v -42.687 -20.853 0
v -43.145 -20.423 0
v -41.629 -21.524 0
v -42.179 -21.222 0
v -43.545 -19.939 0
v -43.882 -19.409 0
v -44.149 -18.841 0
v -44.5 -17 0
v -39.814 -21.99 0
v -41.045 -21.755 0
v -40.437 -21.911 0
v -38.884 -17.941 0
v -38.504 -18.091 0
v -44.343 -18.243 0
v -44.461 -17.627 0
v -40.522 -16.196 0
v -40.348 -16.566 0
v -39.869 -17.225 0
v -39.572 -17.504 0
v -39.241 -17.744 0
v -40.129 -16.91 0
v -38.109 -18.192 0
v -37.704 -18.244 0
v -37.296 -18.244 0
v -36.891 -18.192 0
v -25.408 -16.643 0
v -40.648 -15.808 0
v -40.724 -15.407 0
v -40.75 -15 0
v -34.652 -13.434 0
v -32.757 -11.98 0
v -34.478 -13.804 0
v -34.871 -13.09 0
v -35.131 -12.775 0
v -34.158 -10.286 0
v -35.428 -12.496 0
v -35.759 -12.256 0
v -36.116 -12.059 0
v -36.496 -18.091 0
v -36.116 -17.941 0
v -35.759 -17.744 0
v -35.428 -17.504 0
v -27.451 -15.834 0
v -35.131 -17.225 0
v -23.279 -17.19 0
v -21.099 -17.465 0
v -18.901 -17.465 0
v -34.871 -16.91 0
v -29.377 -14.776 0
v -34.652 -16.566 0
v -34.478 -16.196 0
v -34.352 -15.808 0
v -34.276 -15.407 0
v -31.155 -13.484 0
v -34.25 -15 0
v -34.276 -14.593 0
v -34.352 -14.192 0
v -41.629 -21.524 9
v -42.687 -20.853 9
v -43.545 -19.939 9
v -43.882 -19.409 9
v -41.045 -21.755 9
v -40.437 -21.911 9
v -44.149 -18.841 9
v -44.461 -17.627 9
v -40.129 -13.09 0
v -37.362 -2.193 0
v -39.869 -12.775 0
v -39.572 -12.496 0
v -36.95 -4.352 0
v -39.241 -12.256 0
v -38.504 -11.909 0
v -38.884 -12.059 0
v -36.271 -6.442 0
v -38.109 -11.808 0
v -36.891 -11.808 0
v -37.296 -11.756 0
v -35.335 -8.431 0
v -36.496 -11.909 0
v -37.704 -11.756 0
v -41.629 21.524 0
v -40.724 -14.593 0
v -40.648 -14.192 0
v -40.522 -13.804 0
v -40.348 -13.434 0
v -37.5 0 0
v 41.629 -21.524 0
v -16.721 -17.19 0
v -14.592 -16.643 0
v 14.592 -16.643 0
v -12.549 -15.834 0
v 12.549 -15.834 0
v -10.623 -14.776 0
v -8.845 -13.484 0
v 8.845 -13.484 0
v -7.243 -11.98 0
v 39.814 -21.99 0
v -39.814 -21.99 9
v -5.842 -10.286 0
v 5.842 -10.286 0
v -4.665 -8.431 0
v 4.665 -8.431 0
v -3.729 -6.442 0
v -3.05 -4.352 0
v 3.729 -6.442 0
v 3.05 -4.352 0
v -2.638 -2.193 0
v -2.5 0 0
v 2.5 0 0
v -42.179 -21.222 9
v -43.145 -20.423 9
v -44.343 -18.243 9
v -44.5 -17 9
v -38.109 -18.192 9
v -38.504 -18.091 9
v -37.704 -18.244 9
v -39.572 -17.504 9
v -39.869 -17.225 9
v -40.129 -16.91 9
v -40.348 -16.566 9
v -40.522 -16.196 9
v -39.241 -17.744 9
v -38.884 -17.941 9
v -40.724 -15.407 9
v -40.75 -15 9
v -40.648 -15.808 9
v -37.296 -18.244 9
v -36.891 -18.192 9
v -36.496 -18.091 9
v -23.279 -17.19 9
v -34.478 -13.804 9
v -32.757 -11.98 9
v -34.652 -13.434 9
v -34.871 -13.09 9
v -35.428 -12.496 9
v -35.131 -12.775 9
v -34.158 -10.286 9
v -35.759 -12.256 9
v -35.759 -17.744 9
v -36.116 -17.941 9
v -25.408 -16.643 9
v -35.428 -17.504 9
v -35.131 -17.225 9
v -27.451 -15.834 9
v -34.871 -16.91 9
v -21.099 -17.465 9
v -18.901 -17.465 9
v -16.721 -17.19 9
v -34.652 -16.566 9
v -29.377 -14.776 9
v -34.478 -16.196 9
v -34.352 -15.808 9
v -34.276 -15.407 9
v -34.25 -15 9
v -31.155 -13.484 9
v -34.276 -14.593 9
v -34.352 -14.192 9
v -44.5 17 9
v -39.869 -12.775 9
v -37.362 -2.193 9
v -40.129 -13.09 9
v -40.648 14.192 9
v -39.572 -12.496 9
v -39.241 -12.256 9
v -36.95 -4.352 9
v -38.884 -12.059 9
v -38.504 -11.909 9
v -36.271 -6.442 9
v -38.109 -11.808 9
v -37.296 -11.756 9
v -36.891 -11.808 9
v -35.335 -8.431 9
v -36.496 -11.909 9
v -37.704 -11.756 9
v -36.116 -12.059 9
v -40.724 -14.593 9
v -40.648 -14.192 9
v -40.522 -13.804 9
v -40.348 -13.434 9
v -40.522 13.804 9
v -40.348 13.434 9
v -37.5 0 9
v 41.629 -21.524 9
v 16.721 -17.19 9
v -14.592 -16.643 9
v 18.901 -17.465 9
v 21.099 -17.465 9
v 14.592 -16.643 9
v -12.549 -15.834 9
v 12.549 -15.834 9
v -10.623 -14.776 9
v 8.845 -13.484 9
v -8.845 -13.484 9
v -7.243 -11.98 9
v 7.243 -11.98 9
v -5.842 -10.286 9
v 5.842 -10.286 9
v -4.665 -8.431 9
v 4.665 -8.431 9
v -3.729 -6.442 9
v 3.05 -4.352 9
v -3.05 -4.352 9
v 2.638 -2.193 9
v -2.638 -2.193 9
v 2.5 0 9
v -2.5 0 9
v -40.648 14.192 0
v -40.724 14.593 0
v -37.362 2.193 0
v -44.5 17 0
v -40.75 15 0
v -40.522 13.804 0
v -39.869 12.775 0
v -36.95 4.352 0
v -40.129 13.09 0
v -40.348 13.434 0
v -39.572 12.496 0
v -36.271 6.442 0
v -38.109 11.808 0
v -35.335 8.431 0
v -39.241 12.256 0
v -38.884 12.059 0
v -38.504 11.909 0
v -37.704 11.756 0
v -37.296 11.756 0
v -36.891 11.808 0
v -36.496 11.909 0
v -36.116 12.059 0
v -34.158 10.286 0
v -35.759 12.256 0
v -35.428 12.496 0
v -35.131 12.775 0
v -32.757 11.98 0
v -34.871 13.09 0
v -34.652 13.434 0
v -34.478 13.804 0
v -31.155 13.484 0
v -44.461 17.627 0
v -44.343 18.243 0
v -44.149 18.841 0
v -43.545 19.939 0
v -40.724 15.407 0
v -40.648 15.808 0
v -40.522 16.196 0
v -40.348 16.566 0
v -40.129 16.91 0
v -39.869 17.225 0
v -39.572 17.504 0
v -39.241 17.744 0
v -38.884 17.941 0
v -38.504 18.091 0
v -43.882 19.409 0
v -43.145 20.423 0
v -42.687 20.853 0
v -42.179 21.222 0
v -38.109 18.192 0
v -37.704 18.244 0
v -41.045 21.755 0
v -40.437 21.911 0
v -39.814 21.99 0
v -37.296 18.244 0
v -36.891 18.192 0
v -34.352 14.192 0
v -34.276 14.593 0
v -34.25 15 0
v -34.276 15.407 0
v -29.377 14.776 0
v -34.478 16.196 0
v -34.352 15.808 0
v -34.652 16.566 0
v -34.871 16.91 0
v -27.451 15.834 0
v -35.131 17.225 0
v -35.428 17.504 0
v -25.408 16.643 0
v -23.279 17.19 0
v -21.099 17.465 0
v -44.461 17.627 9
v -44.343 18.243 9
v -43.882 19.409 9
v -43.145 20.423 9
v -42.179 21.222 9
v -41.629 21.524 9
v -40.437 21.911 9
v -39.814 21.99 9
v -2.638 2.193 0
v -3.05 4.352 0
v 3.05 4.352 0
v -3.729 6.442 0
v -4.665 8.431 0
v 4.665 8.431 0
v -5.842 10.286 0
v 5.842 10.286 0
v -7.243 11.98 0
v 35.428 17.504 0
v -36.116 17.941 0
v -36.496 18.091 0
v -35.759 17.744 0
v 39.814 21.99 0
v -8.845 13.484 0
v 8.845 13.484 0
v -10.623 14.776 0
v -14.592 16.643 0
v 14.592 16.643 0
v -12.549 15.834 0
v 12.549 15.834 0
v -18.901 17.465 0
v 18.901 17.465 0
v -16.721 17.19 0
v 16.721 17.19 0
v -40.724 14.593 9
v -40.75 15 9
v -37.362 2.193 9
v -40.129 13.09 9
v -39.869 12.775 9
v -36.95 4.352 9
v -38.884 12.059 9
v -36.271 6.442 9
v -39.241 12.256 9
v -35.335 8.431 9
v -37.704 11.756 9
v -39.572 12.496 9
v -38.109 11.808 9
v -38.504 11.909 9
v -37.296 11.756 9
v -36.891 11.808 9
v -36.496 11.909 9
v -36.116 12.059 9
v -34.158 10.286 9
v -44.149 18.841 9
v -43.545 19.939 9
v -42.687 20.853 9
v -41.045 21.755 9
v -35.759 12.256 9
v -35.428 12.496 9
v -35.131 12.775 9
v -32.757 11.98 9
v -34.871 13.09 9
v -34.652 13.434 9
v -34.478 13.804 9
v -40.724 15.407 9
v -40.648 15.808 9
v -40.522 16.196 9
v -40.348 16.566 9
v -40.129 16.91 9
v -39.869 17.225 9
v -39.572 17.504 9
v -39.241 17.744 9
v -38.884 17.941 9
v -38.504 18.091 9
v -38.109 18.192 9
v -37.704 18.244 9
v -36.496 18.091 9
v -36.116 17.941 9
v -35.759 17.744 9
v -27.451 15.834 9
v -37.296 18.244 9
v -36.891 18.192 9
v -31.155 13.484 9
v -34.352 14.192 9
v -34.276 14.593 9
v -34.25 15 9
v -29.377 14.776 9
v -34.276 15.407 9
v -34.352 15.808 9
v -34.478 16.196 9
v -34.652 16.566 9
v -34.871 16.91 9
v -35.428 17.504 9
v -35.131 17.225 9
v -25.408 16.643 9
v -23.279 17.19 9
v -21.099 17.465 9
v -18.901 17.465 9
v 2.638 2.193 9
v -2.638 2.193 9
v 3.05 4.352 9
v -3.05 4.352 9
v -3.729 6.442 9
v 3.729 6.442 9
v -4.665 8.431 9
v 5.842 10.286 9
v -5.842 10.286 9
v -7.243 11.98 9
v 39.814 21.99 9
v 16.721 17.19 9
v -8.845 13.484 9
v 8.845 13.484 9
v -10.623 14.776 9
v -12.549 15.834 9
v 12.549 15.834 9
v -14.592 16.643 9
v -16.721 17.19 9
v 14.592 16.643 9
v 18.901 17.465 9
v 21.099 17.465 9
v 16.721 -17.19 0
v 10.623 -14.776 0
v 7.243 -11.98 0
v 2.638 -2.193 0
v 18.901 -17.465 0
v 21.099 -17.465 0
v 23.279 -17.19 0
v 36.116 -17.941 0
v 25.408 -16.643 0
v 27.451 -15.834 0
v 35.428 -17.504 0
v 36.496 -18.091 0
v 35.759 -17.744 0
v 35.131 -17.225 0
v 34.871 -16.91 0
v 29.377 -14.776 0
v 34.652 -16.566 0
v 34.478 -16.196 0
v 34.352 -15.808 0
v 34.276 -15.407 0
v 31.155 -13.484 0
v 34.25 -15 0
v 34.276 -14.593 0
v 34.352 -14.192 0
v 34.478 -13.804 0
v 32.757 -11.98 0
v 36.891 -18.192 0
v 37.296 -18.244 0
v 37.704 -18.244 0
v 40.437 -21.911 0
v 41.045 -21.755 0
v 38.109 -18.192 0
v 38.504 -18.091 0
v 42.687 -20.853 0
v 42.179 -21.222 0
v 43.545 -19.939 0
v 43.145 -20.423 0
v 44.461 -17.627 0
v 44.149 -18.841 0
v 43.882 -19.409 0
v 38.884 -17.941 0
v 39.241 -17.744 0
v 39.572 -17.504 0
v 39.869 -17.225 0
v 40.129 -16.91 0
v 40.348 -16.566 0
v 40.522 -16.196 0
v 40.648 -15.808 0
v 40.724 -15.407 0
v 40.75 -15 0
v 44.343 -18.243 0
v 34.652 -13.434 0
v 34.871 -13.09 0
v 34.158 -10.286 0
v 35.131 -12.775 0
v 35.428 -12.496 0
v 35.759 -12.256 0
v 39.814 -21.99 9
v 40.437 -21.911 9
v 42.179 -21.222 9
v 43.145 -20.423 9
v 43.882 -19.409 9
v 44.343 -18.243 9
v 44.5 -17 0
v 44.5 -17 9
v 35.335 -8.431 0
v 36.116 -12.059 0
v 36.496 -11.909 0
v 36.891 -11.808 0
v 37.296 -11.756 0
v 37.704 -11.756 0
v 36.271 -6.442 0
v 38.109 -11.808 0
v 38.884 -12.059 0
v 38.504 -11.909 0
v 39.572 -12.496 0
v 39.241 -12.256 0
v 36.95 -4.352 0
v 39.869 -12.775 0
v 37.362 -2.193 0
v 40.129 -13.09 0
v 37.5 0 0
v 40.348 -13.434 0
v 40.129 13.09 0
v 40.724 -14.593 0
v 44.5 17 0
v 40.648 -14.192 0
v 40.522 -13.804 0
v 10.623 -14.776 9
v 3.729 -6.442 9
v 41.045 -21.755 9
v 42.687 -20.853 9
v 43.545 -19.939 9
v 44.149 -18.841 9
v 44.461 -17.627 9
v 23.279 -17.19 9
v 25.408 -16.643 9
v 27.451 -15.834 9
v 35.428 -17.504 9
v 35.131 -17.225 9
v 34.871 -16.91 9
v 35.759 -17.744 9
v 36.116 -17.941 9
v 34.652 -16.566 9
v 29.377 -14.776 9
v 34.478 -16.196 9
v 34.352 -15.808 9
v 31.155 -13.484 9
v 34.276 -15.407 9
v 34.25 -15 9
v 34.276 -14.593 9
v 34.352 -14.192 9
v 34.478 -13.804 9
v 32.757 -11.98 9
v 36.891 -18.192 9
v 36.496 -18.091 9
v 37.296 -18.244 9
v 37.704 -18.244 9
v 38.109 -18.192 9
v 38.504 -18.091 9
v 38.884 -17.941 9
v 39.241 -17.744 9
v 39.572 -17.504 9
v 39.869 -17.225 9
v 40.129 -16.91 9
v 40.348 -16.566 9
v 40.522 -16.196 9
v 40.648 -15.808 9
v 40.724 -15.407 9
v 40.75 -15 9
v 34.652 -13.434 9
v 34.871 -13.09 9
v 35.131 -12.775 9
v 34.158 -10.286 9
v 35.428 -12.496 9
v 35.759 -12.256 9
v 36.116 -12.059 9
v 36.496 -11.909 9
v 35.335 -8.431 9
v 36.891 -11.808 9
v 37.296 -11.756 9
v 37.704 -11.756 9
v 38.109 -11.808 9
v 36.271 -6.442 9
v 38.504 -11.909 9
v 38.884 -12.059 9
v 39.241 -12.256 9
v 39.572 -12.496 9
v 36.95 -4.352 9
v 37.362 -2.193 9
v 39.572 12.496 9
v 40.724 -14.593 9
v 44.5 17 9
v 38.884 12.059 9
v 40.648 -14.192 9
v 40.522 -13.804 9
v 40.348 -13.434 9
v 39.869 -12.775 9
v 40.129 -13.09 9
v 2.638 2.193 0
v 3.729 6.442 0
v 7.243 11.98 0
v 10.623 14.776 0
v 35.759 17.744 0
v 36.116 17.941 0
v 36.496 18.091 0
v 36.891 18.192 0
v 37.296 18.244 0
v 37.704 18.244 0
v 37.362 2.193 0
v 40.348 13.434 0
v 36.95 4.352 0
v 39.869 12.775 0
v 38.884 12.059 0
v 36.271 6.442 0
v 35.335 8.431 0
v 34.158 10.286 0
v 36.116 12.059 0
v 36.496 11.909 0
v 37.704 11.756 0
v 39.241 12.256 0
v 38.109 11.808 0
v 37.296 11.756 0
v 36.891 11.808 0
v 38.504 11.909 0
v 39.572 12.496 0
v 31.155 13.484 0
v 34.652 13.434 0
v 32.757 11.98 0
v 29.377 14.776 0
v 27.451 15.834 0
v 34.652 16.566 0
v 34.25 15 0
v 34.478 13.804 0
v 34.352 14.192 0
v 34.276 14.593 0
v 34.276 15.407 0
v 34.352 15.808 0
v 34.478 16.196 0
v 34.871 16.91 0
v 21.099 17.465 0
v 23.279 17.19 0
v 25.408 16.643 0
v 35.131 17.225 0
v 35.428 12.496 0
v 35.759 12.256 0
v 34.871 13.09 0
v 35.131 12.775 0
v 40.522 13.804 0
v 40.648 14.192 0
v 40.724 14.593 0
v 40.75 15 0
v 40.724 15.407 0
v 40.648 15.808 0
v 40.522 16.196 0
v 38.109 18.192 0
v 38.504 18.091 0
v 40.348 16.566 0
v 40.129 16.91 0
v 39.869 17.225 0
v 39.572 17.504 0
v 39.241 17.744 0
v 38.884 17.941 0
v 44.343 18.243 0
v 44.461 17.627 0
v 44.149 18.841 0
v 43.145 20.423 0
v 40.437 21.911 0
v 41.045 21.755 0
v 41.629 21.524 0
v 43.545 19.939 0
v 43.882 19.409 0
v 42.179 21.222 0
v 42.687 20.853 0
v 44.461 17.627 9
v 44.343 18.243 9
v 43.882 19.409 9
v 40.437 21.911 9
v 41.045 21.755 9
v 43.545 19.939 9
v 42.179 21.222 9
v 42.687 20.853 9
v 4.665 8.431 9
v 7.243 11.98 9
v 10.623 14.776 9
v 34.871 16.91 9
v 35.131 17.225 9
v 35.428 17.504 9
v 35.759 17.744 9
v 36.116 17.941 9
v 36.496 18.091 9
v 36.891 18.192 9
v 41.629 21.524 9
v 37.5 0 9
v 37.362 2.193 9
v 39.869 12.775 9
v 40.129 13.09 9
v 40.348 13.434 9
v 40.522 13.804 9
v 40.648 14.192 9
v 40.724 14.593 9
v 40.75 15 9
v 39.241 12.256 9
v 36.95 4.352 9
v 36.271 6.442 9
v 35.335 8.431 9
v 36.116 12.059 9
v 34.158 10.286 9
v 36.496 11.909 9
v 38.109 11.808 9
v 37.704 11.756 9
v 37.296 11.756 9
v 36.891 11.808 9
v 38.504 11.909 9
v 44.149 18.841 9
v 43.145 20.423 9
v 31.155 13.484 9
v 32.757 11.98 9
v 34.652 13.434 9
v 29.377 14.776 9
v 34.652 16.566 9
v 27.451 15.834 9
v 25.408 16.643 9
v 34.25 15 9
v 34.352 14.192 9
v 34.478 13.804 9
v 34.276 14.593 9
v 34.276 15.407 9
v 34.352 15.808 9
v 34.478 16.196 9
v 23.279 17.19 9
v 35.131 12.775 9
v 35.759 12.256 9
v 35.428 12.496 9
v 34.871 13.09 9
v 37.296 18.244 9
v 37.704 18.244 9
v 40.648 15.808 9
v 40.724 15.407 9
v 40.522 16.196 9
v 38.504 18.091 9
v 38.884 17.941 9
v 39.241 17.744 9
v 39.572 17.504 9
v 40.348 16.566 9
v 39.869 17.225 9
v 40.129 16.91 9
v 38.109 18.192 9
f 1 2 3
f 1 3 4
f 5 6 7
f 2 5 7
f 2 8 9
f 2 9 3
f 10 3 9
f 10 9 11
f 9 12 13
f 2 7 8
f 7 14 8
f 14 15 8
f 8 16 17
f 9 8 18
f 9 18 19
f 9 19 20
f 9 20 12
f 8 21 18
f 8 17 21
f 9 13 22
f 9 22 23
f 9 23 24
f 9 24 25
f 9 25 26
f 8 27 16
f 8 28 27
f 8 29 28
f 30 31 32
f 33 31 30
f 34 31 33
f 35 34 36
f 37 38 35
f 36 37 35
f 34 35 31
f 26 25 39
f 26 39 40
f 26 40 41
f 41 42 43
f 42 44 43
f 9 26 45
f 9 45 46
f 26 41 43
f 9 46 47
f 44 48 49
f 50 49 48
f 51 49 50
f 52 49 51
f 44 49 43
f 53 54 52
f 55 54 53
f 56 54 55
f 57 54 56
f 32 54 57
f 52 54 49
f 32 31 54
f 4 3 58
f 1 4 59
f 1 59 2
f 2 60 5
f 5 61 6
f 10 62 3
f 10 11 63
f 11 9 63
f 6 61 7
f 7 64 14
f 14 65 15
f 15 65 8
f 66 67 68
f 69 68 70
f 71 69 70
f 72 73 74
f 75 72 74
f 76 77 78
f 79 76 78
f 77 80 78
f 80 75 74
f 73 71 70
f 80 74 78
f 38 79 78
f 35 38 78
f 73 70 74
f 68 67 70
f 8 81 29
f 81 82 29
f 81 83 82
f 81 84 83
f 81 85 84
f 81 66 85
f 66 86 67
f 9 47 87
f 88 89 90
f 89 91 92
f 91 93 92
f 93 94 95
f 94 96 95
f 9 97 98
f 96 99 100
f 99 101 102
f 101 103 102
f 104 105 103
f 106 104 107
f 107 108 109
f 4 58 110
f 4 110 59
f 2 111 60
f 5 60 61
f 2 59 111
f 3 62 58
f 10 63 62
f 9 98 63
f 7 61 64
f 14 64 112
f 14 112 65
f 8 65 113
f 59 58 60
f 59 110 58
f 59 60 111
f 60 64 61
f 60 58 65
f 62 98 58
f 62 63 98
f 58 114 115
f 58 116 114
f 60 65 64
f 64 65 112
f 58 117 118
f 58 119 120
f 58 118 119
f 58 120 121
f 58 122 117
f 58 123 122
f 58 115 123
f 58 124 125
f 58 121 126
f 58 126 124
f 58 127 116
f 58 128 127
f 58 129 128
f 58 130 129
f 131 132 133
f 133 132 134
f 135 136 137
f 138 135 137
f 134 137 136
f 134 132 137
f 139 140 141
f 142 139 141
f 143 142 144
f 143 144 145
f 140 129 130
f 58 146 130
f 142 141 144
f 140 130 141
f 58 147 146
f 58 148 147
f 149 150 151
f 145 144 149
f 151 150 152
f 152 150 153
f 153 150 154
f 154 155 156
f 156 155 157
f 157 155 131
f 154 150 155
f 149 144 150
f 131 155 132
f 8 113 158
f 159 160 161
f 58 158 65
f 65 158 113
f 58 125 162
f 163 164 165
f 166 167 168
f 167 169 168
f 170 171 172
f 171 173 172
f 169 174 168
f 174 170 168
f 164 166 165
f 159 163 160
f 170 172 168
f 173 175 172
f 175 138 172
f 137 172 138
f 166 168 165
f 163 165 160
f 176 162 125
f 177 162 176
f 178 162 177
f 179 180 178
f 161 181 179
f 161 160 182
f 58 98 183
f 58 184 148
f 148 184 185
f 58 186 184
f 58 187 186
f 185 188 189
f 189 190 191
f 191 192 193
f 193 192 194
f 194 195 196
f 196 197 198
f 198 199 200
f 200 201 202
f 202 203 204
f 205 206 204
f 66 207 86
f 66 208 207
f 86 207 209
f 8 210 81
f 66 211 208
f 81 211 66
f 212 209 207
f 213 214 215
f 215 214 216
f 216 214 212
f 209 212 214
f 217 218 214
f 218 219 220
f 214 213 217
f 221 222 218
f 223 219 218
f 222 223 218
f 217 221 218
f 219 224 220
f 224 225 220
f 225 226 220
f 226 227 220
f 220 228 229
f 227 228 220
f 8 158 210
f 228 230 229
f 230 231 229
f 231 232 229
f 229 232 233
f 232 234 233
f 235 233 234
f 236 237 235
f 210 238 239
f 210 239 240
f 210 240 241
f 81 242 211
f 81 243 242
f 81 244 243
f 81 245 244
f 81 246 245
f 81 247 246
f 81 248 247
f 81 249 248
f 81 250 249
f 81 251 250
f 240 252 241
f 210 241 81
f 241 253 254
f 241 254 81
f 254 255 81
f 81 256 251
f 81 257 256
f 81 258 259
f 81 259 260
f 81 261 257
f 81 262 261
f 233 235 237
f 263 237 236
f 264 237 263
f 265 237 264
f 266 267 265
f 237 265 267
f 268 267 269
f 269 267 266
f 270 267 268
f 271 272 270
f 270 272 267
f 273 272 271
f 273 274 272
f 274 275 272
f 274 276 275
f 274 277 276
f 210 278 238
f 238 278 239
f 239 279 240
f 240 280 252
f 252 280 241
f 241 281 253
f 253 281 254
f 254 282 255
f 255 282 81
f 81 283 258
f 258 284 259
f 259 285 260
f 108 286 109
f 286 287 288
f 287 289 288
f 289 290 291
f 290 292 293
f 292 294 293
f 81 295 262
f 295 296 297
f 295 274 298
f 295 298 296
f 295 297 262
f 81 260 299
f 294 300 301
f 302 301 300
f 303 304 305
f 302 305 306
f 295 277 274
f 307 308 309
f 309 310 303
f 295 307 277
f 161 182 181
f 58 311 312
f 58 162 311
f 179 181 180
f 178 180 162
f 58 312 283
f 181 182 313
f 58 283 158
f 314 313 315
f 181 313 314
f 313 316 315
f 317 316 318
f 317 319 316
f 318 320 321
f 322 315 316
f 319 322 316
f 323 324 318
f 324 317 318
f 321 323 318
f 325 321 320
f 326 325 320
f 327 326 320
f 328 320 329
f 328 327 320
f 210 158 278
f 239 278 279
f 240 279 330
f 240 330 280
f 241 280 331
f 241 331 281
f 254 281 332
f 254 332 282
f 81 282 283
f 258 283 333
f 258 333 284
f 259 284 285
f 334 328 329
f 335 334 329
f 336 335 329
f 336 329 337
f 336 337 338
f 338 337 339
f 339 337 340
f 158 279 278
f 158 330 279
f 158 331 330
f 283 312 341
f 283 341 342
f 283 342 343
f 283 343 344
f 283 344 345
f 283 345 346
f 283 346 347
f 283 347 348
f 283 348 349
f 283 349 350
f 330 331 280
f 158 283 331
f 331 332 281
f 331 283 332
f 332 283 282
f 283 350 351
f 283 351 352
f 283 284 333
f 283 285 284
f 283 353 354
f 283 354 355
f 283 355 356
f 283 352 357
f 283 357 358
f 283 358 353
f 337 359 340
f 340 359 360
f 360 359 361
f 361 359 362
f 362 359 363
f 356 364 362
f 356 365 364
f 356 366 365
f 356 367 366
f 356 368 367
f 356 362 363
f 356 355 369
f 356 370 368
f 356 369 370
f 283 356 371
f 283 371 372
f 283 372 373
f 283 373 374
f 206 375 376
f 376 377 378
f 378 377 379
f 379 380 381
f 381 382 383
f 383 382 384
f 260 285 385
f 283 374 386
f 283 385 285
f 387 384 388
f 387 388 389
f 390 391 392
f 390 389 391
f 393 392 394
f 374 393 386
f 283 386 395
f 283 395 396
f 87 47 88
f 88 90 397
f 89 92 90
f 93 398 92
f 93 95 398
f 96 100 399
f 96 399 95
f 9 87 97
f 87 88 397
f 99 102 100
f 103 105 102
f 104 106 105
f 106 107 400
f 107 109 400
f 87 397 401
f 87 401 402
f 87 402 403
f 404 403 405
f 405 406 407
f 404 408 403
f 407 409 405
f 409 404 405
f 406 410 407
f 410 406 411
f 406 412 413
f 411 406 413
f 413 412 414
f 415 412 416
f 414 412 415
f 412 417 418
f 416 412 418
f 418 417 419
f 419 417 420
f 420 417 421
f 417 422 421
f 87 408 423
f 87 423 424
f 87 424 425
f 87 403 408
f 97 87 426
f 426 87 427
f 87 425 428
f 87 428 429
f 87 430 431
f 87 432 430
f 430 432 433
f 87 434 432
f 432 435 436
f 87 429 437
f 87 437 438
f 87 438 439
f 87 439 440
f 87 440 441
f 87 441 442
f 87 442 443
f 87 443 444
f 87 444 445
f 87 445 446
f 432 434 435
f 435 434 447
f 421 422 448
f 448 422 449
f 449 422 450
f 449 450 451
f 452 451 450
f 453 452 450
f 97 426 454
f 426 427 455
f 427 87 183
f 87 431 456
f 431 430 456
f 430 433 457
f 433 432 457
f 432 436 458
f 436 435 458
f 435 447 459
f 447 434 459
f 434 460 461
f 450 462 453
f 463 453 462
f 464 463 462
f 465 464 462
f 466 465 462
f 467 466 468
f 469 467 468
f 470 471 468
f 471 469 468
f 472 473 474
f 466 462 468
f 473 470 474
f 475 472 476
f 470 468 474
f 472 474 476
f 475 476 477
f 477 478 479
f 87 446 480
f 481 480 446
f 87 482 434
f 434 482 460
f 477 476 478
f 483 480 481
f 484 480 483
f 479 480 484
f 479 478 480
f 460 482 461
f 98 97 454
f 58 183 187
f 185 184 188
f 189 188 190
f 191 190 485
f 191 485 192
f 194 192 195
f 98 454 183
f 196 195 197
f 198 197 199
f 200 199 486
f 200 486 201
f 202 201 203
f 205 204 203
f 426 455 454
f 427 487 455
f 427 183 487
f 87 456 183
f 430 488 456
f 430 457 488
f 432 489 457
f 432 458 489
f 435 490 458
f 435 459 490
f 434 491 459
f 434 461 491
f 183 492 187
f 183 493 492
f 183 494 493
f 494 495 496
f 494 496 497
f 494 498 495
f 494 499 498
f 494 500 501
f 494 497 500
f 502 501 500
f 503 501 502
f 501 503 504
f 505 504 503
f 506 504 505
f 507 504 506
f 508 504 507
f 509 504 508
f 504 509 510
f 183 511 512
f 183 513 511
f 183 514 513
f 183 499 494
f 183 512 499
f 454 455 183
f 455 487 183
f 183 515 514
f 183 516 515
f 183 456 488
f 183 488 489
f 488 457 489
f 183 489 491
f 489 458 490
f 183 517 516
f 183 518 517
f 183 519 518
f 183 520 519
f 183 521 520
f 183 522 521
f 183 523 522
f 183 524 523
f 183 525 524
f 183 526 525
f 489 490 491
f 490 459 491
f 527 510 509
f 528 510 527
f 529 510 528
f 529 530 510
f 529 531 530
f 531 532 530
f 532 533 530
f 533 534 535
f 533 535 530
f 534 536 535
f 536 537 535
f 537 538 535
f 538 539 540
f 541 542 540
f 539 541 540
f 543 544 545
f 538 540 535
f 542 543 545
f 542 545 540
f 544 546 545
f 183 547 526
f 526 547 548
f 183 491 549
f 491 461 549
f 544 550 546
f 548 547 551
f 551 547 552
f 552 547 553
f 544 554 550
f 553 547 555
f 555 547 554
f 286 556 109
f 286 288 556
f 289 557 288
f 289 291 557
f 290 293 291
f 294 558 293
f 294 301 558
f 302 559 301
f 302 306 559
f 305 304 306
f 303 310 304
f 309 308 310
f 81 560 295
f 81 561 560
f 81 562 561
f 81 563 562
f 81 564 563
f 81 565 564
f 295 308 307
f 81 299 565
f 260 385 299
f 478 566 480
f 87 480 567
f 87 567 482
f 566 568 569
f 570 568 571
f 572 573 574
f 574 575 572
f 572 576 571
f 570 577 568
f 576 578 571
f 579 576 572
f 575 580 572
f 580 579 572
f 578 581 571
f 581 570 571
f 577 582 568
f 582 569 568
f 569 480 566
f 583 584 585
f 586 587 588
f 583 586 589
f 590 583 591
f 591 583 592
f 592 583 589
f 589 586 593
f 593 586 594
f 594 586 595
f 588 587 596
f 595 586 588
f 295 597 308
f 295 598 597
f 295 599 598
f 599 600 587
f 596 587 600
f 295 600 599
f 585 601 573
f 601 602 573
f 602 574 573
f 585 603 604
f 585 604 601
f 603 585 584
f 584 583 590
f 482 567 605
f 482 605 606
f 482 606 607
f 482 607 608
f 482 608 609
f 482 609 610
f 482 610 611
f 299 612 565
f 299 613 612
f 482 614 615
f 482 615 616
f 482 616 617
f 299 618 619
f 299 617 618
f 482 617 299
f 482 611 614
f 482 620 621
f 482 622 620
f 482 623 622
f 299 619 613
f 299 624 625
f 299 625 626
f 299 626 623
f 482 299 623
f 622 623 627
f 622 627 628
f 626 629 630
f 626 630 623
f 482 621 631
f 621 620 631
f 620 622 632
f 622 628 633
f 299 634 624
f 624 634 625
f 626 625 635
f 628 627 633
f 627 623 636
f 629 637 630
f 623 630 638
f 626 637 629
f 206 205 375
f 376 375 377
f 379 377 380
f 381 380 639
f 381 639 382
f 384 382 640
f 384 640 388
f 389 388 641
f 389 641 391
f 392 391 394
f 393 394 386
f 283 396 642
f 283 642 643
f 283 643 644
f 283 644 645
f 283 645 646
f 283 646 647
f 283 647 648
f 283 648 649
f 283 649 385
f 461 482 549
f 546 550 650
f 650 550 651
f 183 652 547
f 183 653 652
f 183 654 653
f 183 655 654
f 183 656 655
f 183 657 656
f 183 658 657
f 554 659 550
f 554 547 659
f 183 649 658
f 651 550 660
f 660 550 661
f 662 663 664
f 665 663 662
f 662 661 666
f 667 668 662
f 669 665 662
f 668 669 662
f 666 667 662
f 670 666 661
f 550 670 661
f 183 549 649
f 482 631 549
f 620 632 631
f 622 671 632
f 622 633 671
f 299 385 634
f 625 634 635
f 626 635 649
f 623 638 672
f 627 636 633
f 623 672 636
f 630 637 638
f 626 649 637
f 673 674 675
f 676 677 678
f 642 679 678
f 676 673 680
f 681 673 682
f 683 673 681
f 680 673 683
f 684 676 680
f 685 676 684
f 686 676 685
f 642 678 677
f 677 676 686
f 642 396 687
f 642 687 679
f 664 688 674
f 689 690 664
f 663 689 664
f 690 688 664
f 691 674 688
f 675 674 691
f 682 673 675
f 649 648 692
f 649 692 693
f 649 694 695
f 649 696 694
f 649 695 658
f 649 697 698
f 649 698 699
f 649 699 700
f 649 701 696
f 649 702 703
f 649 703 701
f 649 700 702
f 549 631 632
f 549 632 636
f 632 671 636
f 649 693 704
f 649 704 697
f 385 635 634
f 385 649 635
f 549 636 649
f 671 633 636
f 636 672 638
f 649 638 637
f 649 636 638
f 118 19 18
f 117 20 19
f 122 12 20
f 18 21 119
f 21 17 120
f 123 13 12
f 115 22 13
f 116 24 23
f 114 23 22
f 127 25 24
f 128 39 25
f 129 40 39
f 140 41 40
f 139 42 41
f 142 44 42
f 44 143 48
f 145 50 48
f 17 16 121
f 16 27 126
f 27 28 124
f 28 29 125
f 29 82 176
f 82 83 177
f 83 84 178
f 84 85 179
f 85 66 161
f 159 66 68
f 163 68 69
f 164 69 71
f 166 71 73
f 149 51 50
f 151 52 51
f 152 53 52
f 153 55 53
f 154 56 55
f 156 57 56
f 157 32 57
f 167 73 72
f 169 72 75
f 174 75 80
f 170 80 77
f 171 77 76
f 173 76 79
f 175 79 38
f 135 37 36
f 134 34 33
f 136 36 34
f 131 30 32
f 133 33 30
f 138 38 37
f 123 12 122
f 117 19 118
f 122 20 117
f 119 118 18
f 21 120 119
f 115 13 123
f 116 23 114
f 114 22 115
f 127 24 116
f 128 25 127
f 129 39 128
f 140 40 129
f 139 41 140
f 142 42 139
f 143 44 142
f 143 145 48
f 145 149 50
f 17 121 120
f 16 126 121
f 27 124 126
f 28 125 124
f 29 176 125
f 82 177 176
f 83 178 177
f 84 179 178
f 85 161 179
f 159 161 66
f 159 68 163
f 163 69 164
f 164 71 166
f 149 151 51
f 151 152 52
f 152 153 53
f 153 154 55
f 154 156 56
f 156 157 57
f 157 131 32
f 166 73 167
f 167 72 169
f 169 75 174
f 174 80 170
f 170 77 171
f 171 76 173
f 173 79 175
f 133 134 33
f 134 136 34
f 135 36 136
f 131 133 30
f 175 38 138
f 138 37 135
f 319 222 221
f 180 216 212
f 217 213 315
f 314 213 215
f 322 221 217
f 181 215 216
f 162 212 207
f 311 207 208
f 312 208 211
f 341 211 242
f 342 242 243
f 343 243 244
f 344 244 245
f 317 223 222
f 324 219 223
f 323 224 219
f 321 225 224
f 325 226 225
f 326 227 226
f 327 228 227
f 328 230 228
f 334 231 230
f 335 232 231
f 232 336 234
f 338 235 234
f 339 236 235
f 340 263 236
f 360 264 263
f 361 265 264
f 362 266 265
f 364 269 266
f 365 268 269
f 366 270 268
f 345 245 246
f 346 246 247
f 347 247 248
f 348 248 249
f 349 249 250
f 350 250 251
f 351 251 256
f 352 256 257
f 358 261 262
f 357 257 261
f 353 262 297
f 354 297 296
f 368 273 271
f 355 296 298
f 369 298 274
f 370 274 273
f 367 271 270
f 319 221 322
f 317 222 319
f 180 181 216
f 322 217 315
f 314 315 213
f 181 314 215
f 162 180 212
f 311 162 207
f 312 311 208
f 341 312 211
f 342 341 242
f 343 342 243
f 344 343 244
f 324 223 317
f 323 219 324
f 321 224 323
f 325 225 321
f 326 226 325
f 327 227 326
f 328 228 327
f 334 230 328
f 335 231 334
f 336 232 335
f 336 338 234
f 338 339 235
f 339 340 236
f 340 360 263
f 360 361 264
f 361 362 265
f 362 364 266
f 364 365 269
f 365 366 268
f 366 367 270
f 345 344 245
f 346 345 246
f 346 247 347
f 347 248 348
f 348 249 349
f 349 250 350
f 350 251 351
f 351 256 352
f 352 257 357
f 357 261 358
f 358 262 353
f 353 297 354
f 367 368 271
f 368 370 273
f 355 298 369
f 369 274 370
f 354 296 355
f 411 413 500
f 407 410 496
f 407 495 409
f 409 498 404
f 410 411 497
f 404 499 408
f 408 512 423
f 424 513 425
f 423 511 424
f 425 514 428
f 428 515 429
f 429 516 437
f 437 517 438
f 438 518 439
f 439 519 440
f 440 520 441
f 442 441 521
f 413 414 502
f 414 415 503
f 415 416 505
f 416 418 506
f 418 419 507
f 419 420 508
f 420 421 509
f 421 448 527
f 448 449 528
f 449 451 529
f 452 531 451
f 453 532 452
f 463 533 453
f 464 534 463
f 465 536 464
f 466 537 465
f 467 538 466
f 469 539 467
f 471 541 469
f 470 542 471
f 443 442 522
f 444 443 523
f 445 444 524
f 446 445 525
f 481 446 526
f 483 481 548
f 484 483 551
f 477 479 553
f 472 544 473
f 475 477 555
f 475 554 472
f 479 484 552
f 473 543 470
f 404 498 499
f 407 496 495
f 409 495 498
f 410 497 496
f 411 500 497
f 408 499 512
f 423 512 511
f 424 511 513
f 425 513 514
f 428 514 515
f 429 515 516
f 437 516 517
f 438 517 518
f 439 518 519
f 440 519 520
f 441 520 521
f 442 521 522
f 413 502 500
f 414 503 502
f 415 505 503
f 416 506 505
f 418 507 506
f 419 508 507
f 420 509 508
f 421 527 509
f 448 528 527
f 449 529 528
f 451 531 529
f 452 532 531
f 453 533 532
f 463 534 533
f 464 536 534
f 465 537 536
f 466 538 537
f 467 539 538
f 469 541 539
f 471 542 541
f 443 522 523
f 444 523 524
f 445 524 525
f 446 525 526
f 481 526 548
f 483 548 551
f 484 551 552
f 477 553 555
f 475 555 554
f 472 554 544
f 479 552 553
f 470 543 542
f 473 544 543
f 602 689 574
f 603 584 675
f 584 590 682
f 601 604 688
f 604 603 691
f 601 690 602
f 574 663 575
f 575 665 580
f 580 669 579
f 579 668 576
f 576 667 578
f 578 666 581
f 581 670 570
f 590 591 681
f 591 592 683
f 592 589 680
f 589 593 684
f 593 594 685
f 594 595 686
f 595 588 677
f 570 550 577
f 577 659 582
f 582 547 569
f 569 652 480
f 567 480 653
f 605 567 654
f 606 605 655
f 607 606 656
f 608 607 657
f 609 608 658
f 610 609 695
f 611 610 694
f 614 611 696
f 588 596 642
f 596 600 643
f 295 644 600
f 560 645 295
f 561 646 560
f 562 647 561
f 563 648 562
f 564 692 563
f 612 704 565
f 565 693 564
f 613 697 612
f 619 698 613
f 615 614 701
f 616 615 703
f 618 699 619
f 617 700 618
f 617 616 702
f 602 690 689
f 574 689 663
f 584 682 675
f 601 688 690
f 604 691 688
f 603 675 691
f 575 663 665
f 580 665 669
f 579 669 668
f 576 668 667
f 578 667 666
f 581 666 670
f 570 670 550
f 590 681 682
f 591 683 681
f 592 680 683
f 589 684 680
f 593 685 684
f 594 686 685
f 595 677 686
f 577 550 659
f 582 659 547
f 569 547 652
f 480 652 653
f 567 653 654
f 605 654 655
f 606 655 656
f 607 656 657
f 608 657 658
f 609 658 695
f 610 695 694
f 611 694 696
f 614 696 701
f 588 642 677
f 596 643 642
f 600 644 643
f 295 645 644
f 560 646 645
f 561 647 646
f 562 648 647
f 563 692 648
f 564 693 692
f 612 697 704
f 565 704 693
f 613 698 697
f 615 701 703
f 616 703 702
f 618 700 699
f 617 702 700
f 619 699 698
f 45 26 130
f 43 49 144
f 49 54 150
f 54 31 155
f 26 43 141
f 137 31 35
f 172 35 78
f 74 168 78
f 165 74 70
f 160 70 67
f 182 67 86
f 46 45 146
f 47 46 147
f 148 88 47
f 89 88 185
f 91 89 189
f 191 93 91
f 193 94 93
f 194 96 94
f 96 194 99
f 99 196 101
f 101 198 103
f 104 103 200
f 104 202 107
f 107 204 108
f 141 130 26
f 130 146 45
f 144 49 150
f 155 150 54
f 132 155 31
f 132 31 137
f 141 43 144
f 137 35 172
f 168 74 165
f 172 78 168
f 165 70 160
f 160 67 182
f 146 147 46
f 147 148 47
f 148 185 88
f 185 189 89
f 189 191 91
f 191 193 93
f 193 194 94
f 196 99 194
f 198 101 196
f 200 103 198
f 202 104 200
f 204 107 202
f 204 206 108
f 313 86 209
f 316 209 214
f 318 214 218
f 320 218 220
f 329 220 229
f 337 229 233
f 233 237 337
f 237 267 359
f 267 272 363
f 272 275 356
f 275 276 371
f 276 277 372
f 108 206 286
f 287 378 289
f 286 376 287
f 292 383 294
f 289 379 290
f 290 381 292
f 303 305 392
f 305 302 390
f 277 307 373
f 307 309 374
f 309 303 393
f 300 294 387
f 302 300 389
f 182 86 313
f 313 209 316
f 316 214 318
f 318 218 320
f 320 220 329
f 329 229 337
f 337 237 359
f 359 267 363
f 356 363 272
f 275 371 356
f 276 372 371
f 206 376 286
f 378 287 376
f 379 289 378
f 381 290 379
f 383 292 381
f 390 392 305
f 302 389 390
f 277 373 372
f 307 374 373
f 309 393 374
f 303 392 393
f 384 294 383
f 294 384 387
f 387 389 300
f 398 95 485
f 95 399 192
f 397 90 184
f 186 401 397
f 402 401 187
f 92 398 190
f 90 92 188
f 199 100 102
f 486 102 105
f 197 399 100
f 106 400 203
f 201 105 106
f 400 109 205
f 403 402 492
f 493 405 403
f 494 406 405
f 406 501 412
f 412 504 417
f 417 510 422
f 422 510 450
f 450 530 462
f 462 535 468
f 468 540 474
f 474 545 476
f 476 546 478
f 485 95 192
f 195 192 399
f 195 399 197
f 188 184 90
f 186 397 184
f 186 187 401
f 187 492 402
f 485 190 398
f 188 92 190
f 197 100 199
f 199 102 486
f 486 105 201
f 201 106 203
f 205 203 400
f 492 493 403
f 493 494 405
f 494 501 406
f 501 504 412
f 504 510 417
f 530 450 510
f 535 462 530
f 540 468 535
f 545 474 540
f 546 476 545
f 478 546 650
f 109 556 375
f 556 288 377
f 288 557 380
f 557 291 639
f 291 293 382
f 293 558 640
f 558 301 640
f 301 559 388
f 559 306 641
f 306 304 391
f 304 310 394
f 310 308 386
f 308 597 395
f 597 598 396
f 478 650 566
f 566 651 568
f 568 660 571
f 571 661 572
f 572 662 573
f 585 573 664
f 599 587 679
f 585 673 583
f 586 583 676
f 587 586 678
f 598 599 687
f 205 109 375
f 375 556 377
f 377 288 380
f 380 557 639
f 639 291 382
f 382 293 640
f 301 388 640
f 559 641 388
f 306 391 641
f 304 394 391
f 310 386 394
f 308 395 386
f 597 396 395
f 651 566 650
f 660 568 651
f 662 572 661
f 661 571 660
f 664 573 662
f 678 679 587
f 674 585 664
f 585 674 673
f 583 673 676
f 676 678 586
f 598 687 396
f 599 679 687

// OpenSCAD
$fn = 50;

difference() {
	union() {
		hull() {
			translate(v = [-39.5, 17.0, 0]) {
				cylinder(h = 9, r = 5);
			}
			translate(v = [39.5, 17.0, 0]) {
				cylinder(h = 9, r = 5);
			}
			translate(v = [-39.5, -17.0, 0]) {
				cylinder(h = 9, r = 5);
			}
			translate(v = [39.5, -17.0, 0]) {
				cylinder(h = 9, r = 5);
			}
		}
	}
	union() {
		translate(v = [-37.5, -15.0, -100.0]) {
			cylinder(h = 200, r = 3.25);
		}
		translate(v = [-37.5, 15.0, -100.0]) {
			cylinder(h = 200, r = 3.25);
		}
		translate(v = [37.5, -15.0, -100.0]) {
			cylinder(h = 200, r = 3.25);
		}
		translate(v = [37.5, 15.0, -100.0]) {
			cylinder(h = 200, r = 3.25);
		}
		translate(v = [-37.5, -15.0, -100.0]) {
			cylinder(h = 200, r = 1.8);
		}
		translate(v = [-37.5, 15.0, -100.0]) {
			cylinder(h = 200, r = 1.8);
		}
		translate(v = [37.5, -15.0, -100.0]) {
			cylinder(h = 200, r = 1.8);
		}
		translate(v = [37.5, 15.0, -100.0]) {
			cylinder(h = 200, r = 1.8);
		}
		translate(v = [-20.0, 0, 0.0]) {
			cylinder(h = 9, r = 17.5);
		}
		translate(v = [20.0, 0, 0.0]) {
			cylinder(h = 9, r = 17.5);
		}
	}
}
